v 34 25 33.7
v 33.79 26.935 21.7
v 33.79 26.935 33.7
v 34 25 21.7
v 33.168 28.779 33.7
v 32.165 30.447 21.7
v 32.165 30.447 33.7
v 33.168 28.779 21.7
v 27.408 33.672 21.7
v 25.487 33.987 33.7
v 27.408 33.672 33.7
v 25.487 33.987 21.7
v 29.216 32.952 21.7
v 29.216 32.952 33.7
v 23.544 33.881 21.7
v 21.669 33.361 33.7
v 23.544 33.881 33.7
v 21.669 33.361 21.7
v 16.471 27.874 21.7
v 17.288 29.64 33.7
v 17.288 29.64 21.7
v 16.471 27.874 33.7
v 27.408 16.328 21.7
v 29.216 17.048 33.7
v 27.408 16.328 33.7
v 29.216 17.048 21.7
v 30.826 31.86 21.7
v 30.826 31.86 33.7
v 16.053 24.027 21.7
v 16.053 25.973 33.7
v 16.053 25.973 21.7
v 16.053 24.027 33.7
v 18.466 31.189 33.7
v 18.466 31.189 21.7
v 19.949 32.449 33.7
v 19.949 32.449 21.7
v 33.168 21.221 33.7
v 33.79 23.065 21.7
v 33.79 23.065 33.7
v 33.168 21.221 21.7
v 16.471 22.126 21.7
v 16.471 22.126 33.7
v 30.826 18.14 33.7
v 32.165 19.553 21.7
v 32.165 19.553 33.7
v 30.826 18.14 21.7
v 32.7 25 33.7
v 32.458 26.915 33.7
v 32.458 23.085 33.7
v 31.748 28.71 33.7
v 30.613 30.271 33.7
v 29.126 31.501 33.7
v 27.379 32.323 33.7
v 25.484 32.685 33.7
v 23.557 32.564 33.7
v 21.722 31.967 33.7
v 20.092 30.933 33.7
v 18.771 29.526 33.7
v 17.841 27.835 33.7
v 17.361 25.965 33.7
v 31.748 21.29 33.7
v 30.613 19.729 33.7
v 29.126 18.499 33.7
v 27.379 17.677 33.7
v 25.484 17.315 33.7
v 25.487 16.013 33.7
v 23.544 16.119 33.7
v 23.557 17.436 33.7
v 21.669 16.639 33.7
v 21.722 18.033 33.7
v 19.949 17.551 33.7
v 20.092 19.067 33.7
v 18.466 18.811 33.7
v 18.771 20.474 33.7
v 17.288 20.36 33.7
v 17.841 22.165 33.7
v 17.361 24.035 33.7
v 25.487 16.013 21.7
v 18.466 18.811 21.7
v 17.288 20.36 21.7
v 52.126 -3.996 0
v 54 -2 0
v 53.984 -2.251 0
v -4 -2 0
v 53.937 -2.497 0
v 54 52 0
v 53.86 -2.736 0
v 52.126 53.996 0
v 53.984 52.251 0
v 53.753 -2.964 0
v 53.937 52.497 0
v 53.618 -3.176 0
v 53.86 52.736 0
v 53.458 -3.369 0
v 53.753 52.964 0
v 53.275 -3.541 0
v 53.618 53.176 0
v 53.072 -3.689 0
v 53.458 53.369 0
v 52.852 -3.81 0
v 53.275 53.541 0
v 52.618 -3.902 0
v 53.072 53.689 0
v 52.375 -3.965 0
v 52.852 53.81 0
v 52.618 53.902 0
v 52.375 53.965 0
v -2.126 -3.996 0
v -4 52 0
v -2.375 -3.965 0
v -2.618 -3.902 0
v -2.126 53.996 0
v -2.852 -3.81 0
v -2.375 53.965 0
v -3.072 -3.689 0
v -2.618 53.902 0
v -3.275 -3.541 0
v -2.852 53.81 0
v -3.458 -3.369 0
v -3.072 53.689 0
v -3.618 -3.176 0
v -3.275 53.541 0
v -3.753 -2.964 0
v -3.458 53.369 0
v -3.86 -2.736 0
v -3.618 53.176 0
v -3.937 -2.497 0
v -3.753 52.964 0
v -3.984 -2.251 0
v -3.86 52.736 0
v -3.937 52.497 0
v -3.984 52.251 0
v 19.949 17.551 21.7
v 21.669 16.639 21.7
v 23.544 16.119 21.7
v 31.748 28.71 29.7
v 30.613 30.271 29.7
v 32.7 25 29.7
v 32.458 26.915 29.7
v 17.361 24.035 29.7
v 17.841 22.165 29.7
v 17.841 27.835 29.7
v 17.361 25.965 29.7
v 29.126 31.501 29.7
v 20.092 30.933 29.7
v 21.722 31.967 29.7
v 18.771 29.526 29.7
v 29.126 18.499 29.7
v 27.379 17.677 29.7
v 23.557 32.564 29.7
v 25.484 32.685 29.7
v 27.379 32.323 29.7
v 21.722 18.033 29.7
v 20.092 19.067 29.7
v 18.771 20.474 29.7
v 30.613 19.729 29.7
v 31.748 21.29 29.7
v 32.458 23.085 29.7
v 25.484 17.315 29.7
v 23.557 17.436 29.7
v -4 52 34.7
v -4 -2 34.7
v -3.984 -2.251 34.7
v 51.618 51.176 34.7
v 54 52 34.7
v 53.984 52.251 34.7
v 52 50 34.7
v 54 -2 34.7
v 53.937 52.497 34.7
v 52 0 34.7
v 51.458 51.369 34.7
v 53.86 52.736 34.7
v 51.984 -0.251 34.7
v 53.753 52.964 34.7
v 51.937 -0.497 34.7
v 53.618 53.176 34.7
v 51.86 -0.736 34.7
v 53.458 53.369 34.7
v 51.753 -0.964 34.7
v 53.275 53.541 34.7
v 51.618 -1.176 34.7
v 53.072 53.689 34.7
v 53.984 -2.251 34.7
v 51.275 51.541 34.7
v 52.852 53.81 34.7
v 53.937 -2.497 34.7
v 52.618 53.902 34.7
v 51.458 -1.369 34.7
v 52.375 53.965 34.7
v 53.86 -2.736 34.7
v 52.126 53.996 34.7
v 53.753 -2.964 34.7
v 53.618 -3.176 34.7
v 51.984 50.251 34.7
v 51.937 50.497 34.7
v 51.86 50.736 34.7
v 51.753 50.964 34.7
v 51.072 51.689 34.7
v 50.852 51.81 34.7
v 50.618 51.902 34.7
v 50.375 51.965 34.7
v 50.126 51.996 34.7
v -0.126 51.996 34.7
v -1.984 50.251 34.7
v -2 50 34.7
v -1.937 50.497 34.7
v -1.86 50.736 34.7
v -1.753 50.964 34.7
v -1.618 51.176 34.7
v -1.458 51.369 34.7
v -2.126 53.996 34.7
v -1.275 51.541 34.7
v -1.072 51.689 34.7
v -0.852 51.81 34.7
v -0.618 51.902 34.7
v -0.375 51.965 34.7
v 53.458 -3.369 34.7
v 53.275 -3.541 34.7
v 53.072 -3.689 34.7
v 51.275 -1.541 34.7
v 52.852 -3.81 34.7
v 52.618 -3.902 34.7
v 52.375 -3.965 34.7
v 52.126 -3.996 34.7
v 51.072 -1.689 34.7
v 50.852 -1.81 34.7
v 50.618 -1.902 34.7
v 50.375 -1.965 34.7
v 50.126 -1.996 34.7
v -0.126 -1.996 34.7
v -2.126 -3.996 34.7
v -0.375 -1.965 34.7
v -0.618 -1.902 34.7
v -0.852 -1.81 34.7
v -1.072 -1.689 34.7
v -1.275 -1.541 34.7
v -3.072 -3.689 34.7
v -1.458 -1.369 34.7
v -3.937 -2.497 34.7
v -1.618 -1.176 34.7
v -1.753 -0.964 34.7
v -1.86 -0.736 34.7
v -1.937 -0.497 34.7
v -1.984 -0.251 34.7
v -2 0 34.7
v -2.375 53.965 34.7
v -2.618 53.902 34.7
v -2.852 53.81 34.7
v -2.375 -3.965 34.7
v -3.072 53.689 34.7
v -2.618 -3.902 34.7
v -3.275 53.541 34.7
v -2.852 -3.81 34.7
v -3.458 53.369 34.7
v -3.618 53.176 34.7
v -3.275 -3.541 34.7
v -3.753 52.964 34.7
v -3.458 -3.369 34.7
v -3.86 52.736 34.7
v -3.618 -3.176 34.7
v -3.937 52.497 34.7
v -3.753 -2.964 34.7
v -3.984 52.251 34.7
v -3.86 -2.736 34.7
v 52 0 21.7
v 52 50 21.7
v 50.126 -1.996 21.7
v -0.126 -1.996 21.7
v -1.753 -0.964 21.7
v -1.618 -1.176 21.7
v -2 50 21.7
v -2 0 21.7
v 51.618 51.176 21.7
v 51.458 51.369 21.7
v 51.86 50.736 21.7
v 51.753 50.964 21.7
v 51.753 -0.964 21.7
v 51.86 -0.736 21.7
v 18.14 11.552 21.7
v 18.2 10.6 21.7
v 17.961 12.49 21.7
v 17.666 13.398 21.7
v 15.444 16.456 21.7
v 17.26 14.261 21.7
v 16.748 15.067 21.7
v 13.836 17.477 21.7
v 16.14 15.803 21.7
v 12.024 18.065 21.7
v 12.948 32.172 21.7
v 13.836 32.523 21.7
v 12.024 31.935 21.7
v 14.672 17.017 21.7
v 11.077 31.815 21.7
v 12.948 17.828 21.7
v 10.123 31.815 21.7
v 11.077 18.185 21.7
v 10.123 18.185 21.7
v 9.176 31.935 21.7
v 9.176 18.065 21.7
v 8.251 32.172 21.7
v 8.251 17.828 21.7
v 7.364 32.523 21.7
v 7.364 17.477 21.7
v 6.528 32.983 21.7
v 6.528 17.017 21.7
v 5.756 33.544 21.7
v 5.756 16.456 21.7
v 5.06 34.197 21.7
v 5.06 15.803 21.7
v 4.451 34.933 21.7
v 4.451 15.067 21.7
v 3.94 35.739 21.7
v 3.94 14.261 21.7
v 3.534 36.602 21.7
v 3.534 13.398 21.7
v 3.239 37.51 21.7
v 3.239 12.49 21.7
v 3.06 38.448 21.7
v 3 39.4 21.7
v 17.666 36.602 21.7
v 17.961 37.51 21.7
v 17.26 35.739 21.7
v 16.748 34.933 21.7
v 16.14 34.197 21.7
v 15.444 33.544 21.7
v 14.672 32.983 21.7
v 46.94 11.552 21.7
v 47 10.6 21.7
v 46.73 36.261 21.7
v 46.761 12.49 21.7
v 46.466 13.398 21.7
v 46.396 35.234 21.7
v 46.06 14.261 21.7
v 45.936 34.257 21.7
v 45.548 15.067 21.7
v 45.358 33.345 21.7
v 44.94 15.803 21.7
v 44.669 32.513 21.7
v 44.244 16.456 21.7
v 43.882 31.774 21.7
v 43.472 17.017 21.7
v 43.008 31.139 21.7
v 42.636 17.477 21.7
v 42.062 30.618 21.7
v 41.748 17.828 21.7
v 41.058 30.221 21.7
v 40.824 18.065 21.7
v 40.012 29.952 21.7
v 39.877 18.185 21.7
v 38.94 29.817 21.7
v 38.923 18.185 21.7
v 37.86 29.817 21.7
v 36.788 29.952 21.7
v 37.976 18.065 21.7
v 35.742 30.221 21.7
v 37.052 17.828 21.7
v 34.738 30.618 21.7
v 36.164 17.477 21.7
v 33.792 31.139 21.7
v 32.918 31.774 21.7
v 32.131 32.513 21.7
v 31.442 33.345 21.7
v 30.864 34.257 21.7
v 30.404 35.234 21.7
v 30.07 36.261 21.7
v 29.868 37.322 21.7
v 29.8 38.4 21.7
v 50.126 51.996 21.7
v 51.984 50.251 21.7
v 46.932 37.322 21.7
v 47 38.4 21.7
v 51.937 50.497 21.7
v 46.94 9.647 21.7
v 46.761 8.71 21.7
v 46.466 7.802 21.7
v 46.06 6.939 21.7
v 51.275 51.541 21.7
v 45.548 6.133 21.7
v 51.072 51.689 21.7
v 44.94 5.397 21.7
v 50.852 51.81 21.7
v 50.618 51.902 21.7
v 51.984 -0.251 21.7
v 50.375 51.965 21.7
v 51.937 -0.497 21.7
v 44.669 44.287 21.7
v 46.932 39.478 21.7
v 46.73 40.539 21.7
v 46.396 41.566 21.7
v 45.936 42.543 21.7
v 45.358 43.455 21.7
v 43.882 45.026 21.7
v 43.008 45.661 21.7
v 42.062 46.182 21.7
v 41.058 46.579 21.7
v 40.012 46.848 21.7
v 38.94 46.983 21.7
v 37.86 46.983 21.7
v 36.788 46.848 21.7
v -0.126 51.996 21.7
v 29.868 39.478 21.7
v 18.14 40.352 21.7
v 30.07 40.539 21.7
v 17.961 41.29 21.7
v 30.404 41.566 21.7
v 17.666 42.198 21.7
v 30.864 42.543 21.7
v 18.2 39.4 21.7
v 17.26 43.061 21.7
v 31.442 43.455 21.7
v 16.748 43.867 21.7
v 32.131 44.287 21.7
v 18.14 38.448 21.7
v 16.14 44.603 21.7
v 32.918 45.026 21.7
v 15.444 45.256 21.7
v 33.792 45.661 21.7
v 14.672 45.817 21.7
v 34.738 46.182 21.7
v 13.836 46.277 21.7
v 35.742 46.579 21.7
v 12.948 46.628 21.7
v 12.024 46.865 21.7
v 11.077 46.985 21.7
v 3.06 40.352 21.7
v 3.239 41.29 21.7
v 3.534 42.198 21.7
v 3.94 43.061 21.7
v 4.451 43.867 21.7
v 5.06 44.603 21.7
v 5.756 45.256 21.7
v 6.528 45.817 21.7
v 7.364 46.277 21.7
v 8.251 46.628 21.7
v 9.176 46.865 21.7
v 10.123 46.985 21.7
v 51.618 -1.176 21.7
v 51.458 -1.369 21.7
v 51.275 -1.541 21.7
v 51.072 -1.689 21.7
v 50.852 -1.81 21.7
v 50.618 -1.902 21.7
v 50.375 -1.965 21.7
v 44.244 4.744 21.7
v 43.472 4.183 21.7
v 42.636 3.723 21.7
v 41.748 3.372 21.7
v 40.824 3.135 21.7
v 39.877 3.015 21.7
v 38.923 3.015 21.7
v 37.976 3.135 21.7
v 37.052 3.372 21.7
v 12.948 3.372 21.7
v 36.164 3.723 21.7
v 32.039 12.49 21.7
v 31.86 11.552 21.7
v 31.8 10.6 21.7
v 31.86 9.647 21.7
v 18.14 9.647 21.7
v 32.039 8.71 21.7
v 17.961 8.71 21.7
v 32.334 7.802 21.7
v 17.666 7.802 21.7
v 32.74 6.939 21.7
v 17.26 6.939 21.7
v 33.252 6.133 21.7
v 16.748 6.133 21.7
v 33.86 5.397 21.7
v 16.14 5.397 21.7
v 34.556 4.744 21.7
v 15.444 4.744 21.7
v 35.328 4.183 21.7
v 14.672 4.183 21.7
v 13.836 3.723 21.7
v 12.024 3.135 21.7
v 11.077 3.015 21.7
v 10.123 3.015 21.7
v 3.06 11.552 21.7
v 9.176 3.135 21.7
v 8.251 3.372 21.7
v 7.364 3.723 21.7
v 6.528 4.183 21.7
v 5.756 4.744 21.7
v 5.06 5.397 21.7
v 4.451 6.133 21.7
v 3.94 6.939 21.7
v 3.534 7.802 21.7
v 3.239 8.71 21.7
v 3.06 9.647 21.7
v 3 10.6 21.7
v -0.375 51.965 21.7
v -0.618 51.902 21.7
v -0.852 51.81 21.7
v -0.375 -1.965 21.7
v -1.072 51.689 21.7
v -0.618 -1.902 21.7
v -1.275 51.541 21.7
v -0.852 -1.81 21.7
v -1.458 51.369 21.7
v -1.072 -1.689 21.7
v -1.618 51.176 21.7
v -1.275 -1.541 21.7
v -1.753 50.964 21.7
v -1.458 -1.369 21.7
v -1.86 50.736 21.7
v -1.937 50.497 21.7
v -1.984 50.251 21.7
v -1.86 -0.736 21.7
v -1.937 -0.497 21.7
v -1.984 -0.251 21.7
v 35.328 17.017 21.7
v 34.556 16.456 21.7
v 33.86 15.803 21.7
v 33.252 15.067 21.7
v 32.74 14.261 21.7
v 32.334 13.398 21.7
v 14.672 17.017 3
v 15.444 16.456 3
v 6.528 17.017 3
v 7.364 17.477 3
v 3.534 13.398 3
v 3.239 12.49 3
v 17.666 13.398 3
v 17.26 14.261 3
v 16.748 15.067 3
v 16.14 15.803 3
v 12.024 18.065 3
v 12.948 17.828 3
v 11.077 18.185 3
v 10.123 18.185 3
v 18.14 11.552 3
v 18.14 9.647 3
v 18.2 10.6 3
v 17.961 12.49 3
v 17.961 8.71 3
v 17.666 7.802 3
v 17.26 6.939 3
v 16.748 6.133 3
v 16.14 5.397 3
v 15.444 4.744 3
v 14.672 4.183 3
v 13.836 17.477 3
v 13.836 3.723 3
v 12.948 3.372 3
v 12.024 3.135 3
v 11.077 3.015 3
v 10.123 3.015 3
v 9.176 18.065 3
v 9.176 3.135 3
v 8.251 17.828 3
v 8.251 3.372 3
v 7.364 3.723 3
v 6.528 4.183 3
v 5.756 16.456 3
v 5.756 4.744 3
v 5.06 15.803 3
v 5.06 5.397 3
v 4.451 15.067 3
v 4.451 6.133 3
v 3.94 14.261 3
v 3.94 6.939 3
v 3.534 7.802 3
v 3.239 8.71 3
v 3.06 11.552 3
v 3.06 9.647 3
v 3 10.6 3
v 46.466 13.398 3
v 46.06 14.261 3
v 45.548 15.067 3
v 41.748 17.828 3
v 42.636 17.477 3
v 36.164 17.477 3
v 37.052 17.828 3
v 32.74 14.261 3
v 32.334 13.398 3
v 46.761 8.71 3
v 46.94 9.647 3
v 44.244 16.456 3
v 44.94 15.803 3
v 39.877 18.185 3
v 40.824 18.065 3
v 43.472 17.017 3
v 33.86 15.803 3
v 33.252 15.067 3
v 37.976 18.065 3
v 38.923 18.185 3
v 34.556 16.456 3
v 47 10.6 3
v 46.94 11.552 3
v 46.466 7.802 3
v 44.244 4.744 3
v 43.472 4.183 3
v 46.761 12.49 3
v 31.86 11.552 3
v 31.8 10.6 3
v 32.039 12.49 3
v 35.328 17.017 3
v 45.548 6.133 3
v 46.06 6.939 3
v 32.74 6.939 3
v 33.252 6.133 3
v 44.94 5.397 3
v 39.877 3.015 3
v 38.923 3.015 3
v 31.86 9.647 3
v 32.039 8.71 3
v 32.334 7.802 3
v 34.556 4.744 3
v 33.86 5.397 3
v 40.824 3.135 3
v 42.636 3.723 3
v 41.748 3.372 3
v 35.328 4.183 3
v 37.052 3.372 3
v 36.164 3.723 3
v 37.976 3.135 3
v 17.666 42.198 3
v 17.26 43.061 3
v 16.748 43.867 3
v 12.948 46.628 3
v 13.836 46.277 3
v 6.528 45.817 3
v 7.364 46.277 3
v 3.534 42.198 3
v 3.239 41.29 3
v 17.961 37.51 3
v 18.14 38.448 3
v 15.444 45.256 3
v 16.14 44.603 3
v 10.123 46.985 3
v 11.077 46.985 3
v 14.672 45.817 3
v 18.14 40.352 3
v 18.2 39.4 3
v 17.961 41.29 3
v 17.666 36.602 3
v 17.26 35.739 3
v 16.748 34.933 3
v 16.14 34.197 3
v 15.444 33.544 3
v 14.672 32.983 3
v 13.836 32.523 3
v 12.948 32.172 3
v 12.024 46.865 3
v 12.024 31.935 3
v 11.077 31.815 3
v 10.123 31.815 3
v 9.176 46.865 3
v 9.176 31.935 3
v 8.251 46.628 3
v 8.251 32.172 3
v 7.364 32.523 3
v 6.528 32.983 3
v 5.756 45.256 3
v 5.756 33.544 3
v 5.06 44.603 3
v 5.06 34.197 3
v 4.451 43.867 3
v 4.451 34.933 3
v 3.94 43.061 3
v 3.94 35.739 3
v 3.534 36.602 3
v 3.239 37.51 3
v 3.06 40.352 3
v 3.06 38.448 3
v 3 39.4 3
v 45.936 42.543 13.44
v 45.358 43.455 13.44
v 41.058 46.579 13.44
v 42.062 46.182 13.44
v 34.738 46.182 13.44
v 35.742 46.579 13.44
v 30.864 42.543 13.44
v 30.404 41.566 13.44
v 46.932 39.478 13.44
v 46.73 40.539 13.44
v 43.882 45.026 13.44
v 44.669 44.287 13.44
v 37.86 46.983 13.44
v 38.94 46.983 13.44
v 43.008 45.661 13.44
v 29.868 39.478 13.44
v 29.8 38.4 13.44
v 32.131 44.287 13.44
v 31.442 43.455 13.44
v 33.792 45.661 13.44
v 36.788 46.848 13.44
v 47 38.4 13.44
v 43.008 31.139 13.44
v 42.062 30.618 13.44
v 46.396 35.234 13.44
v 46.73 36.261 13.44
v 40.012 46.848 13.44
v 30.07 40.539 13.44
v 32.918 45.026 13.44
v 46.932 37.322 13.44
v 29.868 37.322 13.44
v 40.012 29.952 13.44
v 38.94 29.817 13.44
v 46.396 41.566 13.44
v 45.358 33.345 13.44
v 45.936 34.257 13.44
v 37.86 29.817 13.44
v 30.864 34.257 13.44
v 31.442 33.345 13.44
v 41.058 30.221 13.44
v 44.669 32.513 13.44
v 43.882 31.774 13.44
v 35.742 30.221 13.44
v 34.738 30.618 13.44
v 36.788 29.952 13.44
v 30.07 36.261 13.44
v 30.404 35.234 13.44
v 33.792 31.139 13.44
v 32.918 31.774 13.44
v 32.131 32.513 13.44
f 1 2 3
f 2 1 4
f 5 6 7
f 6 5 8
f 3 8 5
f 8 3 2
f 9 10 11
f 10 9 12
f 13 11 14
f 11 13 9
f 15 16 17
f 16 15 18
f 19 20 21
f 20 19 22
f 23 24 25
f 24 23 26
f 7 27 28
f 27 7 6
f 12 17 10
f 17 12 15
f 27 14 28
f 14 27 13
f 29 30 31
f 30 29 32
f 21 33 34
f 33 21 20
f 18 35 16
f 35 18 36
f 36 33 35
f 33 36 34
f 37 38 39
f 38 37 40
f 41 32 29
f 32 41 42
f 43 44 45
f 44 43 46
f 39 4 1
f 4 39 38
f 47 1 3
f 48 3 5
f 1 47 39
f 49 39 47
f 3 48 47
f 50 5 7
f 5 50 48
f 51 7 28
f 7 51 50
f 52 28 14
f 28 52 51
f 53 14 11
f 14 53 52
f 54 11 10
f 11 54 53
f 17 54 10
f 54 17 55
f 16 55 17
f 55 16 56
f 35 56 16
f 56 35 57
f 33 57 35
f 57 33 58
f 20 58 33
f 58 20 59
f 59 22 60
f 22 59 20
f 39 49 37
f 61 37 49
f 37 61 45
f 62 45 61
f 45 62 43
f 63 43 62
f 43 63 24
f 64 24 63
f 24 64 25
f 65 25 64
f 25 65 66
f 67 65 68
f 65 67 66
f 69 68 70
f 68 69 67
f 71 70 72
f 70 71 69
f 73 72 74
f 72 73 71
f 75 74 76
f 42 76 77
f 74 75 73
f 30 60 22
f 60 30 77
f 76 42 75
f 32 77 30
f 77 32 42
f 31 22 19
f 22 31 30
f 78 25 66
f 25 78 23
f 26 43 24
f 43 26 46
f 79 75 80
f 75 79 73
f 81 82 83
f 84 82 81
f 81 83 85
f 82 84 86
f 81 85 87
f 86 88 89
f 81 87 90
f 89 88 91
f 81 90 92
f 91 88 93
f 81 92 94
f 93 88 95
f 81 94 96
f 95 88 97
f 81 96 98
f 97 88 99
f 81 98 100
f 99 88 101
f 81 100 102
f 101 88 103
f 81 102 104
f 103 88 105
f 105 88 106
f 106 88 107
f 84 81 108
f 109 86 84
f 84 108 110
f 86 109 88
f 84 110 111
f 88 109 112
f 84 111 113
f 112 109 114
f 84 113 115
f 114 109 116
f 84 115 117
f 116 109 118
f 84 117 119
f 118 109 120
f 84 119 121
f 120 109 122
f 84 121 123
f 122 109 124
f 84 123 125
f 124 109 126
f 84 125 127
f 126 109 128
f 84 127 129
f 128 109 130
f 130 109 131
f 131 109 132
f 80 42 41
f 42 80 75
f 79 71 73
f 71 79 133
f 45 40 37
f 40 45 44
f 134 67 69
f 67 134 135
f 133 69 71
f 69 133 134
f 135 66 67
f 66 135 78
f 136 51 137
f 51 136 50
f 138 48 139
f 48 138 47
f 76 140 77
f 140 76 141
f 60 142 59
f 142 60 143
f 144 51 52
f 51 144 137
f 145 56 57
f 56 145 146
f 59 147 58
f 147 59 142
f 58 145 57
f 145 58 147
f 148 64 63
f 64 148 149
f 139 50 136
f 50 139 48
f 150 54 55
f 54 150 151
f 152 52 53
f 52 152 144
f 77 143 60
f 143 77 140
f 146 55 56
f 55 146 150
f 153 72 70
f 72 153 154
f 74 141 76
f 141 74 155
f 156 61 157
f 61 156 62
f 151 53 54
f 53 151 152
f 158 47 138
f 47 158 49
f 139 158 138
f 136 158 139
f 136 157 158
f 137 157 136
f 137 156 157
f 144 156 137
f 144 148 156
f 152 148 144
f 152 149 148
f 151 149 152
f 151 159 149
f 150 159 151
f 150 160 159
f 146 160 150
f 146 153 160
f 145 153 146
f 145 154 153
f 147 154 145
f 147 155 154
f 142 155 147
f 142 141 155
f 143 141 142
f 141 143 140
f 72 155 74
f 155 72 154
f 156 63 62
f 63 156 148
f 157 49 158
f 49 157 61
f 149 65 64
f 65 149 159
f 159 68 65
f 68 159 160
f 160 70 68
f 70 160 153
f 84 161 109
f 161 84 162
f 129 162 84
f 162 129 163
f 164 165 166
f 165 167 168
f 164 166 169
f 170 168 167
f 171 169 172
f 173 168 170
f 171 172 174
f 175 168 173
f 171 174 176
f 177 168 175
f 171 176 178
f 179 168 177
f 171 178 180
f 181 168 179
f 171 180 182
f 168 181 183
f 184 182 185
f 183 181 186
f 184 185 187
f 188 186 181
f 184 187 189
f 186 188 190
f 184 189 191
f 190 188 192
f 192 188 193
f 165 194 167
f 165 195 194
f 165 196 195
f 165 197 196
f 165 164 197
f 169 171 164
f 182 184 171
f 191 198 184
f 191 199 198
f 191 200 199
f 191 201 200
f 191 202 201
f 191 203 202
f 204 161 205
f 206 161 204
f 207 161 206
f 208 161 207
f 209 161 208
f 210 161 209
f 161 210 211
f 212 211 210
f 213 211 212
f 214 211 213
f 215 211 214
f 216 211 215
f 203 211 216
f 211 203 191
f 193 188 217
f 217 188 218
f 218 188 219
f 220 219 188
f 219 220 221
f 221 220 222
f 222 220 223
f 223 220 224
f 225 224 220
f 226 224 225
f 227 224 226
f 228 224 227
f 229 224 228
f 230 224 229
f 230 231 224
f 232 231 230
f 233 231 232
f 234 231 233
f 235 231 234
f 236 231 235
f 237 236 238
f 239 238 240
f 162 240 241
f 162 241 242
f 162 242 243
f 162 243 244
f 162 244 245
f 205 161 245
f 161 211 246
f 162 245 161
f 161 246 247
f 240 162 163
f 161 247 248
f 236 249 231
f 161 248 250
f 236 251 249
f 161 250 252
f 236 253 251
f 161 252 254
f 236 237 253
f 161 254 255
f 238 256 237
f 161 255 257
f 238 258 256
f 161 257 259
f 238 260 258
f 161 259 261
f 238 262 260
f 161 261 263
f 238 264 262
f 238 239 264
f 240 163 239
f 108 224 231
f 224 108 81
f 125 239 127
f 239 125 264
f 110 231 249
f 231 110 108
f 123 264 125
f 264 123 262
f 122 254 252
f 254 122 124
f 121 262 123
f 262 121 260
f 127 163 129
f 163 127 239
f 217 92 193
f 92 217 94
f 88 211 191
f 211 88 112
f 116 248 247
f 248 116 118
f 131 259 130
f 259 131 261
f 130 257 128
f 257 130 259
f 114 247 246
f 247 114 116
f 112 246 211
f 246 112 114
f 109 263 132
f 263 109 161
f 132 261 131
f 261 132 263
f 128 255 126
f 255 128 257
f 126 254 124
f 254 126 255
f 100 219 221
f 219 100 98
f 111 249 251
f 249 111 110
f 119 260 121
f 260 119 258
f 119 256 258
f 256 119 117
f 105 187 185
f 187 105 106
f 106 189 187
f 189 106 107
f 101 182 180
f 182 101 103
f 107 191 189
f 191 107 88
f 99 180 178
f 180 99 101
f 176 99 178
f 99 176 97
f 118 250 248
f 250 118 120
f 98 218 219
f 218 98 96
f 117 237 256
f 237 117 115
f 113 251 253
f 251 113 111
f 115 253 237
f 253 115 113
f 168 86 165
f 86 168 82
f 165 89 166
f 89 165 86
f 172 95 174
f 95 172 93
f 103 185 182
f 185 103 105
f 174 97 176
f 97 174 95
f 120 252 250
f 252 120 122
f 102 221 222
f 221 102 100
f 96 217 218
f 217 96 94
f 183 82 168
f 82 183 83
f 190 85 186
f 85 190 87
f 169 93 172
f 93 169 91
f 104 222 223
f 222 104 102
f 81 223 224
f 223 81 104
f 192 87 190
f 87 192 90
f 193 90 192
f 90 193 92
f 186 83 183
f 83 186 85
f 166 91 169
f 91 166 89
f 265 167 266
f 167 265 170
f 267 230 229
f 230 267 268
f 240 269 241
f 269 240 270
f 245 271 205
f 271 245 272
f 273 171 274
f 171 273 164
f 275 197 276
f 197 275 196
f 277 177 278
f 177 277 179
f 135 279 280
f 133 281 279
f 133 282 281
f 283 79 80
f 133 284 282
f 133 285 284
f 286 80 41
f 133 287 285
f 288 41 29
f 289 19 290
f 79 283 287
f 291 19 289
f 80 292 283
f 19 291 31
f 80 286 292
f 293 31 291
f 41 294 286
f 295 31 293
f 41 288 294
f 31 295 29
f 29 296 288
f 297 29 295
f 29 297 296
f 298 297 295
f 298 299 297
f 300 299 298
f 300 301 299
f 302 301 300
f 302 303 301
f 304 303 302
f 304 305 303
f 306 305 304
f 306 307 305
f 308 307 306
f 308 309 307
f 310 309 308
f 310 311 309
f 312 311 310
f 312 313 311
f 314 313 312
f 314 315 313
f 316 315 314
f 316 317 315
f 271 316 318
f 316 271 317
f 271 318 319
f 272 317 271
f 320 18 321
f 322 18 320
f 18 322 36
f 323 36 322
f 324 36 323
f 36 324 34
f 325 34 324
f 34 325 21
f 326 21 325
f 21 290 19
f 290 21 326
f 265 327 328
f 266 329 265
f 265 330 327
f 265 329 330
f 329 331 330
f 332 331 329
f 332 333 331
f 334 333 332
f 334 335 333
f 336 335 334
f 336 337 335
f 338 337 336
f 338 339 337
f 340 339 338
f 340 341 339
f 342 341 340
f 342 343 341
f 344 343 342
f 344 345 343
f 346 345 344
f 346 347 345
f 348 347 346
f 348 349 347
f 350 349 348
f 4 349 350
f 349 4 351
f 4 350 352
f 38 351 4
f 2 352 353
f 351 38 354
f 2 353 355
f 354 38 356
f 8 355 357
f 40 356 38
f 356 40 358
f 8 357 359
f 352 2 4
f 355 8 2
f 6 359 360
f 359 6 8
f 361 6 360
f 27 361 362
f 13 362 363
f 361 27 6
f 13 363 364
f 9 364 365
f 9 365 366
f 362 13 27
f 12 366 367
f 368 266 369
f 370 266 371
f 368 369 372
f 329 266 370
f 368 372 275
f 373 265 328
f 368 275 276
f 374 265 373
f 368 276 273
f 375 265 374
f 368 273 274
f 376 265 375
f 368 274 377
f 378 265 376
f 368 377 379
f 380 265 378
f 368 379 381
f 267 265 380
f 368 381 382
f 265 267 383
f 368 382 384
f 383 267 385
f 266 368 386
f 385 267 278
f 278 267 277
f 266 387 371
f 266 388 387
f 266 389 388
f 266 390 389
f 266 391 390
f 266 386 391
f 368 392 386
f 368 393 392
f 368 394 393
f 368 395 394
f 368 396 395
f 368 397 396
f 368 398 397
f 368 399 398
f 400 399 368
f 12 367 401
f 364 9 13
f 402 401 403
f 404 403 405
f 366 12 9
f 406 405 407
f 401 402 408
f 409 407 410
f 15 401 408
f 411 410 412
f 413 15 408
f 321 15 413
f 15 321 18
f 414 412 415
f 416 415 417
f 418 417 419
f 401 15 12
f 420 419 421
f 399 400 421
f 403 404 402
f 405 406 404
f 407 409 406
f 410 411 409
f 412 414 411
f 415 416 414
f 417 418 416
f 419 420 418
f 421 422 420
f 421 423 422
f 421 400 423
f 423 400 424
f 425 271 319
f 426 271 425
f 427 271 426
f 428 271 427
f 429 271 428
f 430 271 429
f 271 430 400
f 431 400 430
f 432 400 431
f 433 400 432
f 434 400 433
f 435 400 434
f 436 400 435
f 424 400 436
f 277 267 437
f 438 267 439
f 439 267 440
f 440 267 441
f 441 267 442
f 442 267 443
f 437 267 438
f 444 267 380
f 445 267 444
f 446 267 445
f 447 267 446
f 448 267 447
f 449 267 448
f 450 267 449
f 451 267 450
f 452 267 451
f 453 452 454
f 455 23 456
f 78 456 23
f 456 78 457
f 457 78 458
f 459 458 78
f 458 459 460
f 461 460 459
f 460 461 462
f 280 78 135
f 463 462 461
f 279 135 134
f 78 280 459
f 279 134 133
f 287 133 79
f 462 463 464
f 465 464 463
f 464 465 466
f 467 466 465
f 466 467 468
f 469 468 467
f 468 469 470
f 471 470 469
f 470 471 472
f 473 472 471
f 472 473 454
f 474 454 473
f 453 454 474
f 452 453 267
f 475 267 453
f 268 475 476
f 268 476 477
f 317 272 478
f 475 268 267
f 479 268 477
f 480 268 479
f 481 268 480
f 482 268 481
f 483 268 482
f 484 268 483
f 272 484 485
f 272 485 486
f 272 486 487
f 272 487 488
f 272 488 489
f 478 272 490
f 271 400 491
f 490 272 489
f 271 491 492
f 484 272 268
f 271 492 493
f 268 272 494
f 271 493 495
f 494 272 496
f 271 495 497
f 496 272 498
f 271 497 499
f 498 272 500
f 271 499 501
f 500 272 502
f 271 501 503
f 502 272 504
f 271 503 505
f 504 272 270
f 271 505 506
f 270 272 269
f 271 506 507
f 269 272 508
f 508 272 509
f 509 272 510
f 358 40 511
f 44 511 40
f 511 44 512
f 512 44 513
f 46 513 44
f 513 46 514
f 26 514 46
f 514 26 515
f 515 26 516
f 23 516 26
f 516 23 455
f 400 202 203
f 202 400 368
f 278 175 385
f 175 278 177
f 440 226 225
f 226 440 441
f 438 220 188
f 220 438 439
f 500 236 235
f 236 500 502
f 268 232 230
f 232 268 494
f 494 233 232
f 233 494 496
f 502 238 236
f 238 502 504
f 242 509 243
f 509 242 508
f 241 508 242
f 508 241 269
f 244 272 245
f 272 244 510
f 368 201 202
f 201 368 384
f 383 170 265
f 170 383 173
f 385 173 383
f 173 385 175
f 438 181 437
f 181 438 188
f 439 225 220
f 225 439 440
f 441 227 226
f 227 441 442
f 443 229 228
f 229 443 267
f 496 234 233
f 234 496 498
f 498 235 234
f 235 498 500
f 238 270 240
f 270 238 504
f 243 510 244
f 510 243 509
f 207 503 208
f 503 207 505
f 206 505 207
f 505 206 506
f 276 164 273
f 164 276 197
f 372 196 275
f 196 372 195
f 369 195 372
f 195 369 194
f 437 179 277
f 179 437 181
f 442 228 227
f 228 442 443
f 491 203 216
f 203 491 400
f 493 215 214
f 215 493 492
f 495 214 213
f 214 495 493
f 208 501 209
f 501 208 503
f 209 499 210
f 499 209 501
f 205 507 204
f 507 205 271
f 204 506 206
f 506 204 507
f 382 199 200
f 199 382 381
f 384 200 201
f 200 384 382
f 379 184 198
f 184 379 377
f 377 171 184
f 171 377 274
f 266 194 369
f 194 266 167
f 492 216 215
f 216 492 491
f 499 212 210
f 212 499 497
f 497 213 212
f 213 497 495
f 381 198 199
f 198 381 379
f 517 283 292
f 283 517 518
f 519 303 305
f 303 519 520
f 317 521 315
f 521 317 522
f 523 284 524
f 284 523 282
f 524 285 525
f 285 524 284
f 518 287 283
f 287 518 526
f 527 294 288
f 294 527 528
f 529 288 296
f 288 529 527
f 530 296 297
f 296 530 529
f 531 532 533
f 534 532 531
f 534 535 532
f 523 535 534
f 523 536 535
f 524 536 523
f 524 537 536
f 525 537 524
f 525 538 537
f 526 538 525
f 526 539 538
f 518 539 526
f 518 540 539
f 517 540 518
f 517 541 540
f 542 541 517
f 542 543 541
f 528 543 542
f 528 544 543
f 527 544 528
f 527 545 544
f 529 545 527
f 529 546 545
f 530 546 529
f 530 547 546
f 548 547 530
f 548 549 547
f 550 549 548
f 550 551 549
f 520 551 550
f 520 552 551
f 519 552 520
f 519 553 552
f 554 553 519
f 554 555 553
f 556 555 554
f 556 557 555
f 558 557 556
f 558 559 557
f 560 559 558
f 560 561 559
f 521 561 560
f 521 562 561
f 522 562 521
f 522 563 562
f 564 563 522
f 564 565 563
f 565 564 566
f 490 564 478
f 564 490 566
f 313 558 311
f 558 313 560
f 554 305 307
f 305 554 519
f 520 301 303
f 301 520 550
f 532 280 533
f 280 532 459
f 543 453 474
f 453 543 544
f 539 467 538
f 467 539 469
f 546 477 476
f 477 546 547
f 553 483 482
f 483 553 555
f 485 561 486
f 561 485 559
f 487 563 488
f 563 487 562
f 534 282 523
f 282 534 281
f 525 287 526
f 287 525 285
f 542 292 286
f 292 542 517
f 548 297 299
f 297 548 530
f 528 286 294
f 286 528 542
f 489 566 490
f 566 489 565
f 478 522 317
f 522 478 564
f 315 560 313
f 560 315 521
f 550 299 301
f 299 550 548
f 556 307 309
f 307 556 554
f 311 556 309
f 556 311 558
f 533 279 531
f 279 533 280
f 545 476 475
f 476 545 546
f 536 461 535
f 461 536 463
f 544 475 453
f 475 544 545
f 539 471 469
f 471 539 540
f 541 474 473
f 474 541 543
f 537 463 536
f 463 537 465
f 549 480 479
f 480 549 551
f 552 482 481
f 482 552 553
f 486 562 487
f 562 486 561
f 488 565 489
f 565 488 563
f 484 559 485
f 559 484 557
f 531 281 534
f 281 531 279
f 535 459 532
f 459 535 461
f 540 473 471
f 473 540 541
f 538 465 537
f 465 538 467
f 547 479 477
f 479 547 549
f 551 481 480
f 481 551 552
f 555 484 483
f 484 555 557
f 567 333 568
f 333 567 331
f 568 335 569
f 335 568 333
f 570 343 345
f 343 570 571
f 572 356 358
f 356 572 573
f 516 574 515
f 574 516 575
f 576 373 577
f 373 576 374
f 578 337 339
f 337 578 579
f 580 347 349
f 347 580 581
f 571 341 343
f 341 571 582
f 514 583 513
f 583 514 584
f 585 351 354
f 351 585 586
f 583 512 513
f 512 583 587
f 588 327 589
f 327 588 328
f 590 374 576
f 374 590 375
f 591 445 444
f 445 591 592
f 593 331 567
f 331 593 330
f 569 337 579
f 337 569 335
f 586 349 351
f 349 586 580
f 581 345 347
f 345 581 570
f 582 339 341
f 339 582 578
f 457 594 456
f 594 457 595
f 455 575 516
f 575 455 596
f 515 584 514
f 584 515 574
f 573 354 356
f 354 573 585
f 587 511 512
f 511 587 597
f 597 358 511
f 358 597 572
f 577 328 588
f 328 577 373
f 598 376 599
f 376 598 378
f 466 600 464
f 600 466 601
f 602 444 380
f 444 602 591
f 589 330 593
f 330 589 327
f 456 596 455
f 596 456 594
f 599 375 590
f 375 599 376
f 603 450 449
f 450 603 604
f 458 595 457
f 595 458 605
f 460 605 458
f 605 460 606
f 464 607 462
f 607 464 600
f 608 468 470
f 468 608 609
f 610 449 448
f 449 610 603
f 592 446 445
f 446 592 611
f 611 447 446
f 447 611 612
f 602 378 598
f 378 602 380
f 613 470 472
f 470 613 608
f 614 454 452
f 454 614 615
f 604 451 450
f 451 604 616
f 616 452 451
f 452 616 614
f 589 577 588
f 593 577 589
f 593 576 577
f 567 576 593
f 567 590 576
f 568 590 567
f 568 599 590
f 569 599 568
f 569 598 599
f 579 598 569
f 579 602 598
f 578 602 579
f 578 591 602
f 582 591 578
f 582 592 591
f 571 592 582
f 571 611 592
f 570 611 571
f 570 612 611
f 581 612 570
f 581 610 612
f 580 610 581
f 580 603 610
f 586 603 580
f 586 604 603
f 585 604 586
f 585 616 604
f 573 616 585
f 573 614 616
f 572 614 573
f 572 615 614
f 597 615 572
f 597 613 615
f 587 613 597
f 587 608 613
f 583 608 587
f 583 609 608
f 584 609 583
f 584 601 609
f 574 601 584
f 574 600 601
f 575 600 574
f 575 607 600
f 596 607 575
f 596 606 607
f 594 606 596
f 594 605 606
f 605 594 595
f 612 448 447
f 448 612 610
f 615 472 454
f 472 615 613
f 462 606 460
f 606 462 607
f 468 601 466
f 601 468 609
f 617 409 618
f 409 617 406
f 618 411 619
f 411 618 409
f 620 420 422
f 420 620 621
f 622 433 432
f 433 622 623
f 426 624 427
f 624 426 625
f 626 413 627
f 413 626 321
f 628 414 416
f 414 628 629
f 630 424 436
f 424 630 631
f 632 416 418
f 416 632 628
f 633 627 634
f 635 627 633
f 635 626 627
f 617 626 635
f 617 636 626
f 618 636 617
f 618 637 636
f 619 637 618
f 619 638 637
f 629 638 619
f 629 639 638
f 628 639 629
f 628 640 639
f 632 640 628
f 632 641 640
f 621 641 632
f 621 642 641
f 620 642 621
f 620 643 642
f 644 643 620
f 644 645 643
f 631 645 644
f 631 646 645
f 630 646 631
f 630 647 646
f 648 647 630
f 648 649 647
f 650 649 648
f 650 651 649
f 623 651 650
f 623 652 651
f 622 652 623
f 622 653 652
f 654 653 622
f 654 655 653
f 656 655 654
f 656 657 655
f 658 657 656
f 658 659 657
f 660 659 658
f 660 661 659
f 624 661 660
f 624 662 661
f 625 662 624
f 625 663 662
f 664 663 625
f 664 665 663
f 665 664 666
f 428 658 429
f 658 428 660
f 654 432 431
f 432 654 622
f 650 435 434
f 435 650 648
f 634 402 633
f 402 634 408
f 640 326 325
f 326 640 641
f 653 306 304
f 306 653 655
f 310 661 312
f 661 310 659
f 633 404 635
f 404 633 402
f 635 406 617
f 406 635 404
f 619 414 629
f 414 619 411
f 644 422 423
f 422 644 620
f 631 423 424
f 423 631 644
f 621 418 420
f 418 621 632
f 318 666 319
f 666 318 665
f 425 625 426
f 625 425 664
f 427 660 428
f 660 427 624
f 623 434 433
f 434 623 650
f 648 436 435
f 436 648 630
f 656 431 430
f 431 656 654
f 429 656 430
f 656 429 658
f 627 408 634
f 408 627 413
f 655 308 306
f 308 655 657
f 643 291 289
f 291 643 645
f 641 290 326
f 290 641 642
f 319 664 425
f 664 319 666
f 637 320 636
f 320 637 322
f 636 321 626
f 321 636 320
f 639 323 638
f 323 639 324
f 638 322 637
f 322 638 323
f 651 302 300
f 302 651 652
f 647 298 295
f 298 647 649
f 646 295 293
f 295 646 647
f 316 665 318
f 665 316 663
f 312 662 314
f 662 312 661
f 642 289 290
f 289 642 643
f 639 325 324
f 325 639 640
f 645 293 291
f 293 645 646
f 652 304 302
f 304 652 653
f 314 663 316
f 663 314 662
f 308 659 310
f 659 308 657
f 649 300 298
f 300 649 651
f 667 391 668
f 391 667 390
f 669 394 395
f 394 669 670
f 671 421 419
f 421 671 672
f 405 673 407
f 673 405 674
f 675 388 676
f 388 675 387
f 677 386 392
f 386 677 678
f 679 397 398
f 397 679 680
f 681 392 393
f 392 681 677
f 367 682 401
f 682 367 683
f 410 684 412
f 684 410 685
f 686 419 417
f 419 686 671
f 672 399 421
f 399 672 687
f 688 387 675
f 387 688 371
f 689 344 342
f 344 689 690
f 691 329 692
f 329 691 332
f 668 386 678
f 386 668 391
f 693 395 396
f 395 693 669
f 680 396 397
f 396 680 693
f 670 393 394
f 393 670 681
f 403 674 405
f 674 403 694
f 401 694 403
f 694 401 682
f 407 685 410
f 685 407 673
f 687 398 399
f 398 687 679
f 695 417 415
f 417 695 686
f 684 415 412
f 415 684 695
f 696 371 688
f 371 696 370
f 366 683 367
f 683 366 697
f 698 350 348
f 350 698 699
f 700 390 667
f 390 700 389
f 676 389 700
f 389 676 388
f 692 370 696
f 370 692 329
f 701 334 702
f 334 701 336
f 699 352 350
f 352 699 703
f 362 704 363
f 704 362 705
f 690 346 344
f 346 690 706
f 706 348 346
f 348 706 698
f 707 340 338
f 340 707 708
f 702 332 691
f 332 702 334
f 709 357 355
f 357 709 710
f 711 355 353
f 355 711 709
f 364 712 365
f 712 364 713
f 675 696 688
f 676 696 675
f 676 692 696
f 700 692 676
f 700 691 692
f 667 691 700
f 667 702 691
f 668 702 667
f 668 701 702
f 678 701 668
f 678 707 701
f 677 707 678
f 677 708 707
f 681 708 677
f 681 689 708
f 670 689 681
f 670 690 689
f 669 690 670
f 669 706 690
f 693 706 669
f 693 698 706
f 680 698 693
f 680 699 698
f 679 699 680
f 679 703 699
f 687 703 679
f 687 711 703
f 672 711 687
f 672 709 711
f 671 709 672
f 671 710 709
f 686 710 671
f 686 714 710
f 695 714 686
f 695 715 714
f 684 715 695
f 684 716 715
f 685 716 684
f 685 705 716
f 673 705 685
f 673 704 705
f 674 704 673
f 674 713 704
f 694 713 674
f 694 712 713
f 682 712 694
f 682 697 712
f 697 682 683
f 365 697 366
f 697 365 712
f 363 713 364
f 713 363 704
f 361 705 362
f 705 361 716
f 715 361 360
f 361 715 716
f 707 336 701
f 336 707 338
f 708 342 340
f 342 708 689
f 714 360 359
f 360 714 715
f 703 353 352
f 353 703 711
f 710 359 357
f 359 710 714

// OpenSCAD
protrusionHeight = 12;
specialPawnHeight = 30.2 + .5;
specialPawnDiameter = 14.7 + .5;
yearTokenHeight = 19.76 + .5;
yearTokenDiameter = 16.7 + .5;



length = 50;
width = 50;
floorHeight = 3;
height = (specialPawnHeight - protrusionHeight) + floorHeight;
totalHeight = height + protrusionHeight;
echo(totalHeight);
magnetPadding = 15;
magnetBaseOuterDiameter = 18;
magnetBaseInnerDiameter = 15.4;
magnetHeight = 4.0;



wallThickness = 3;
lipThickness = 2;




//      30 cubes, 7.85-8.1 (use woodenCubeSide) cubed
//		2 cubes, 10 cubed
//		1 player token
//			orange
//				17.25 width, 18.8 tall, 10.0 thick
//			blue
//				19.7 width, 18.7 tall, 9.95 thick
//			purple
//				17.4 width, 19.5 tall, 10.0 tall
//			white
//				17.7 width, 19.05 tall, 9.8 thick
 
//    rotate([0,0,90])
   
    union() {    
    
        difference(){
            $fn=50;
            
            translate([-lipThickness, -lipThickness, 0])
                minkowski()
                {
                    cube([length + lipThickness * 2, width + lipThickness * 2, totalHeight]);
                    cylinder(r=2,h=1);
                }
                
            translate([0, 0, height])
                minkowski()
                {
                    cube([length, width, totalHeight - height]);
                    cylinder(r=2,h=1);
                }
            translate([
                wallThickness + specialPawnDiameter/2,
                wallThickness + specialPawnDiameter/2,
                height - (specialPawnHeight - protrusionHeight)])
                cylinder(specialPawnHeight - protrusionHeight, d=specialPawnDiameter);
            translate([
                length - (wallThickness + specialPawnDiameter/2),
                wallThickness + specialPawnDiameter/2,
                height - (specialPawnHeight - protrusionHeight)])
                cylinder(specialPawnHeight - protrusionHeight, d=specialPawnDiameter);
            translate([
                wallThickness + specialPawnDiameter/2,
                width - (wallThickness + specialPawnDiameter/2),
                height - (specialPawnHeight - protrusionHeight)])
                cylinder(specialPawnHeight - protrusionHeight, d=specialPawnDiameter); 
            translate([
                length - (wallThickness + yearTokenDiameter/2),
                width - (wallThickness + yearTokenDiameter/2),
                height - (yearTokenHeight - protrusionHeight)])
                cylinder(yearTokenHeight - protrusionHeight, d=yearTokenDiameter);     
        }
        difference() {
            translate([length/2, width/2, 0])
                cylinder(height + protrusionHeight, d=magnetBaseOuterDiameter);
            translate([length/2, width/2, height + protrusionHeight - magnetHeight])
                 cylinder(magnetHeight, d=magnetBaseInnerDiameter);
        }
    }
    
    
    
